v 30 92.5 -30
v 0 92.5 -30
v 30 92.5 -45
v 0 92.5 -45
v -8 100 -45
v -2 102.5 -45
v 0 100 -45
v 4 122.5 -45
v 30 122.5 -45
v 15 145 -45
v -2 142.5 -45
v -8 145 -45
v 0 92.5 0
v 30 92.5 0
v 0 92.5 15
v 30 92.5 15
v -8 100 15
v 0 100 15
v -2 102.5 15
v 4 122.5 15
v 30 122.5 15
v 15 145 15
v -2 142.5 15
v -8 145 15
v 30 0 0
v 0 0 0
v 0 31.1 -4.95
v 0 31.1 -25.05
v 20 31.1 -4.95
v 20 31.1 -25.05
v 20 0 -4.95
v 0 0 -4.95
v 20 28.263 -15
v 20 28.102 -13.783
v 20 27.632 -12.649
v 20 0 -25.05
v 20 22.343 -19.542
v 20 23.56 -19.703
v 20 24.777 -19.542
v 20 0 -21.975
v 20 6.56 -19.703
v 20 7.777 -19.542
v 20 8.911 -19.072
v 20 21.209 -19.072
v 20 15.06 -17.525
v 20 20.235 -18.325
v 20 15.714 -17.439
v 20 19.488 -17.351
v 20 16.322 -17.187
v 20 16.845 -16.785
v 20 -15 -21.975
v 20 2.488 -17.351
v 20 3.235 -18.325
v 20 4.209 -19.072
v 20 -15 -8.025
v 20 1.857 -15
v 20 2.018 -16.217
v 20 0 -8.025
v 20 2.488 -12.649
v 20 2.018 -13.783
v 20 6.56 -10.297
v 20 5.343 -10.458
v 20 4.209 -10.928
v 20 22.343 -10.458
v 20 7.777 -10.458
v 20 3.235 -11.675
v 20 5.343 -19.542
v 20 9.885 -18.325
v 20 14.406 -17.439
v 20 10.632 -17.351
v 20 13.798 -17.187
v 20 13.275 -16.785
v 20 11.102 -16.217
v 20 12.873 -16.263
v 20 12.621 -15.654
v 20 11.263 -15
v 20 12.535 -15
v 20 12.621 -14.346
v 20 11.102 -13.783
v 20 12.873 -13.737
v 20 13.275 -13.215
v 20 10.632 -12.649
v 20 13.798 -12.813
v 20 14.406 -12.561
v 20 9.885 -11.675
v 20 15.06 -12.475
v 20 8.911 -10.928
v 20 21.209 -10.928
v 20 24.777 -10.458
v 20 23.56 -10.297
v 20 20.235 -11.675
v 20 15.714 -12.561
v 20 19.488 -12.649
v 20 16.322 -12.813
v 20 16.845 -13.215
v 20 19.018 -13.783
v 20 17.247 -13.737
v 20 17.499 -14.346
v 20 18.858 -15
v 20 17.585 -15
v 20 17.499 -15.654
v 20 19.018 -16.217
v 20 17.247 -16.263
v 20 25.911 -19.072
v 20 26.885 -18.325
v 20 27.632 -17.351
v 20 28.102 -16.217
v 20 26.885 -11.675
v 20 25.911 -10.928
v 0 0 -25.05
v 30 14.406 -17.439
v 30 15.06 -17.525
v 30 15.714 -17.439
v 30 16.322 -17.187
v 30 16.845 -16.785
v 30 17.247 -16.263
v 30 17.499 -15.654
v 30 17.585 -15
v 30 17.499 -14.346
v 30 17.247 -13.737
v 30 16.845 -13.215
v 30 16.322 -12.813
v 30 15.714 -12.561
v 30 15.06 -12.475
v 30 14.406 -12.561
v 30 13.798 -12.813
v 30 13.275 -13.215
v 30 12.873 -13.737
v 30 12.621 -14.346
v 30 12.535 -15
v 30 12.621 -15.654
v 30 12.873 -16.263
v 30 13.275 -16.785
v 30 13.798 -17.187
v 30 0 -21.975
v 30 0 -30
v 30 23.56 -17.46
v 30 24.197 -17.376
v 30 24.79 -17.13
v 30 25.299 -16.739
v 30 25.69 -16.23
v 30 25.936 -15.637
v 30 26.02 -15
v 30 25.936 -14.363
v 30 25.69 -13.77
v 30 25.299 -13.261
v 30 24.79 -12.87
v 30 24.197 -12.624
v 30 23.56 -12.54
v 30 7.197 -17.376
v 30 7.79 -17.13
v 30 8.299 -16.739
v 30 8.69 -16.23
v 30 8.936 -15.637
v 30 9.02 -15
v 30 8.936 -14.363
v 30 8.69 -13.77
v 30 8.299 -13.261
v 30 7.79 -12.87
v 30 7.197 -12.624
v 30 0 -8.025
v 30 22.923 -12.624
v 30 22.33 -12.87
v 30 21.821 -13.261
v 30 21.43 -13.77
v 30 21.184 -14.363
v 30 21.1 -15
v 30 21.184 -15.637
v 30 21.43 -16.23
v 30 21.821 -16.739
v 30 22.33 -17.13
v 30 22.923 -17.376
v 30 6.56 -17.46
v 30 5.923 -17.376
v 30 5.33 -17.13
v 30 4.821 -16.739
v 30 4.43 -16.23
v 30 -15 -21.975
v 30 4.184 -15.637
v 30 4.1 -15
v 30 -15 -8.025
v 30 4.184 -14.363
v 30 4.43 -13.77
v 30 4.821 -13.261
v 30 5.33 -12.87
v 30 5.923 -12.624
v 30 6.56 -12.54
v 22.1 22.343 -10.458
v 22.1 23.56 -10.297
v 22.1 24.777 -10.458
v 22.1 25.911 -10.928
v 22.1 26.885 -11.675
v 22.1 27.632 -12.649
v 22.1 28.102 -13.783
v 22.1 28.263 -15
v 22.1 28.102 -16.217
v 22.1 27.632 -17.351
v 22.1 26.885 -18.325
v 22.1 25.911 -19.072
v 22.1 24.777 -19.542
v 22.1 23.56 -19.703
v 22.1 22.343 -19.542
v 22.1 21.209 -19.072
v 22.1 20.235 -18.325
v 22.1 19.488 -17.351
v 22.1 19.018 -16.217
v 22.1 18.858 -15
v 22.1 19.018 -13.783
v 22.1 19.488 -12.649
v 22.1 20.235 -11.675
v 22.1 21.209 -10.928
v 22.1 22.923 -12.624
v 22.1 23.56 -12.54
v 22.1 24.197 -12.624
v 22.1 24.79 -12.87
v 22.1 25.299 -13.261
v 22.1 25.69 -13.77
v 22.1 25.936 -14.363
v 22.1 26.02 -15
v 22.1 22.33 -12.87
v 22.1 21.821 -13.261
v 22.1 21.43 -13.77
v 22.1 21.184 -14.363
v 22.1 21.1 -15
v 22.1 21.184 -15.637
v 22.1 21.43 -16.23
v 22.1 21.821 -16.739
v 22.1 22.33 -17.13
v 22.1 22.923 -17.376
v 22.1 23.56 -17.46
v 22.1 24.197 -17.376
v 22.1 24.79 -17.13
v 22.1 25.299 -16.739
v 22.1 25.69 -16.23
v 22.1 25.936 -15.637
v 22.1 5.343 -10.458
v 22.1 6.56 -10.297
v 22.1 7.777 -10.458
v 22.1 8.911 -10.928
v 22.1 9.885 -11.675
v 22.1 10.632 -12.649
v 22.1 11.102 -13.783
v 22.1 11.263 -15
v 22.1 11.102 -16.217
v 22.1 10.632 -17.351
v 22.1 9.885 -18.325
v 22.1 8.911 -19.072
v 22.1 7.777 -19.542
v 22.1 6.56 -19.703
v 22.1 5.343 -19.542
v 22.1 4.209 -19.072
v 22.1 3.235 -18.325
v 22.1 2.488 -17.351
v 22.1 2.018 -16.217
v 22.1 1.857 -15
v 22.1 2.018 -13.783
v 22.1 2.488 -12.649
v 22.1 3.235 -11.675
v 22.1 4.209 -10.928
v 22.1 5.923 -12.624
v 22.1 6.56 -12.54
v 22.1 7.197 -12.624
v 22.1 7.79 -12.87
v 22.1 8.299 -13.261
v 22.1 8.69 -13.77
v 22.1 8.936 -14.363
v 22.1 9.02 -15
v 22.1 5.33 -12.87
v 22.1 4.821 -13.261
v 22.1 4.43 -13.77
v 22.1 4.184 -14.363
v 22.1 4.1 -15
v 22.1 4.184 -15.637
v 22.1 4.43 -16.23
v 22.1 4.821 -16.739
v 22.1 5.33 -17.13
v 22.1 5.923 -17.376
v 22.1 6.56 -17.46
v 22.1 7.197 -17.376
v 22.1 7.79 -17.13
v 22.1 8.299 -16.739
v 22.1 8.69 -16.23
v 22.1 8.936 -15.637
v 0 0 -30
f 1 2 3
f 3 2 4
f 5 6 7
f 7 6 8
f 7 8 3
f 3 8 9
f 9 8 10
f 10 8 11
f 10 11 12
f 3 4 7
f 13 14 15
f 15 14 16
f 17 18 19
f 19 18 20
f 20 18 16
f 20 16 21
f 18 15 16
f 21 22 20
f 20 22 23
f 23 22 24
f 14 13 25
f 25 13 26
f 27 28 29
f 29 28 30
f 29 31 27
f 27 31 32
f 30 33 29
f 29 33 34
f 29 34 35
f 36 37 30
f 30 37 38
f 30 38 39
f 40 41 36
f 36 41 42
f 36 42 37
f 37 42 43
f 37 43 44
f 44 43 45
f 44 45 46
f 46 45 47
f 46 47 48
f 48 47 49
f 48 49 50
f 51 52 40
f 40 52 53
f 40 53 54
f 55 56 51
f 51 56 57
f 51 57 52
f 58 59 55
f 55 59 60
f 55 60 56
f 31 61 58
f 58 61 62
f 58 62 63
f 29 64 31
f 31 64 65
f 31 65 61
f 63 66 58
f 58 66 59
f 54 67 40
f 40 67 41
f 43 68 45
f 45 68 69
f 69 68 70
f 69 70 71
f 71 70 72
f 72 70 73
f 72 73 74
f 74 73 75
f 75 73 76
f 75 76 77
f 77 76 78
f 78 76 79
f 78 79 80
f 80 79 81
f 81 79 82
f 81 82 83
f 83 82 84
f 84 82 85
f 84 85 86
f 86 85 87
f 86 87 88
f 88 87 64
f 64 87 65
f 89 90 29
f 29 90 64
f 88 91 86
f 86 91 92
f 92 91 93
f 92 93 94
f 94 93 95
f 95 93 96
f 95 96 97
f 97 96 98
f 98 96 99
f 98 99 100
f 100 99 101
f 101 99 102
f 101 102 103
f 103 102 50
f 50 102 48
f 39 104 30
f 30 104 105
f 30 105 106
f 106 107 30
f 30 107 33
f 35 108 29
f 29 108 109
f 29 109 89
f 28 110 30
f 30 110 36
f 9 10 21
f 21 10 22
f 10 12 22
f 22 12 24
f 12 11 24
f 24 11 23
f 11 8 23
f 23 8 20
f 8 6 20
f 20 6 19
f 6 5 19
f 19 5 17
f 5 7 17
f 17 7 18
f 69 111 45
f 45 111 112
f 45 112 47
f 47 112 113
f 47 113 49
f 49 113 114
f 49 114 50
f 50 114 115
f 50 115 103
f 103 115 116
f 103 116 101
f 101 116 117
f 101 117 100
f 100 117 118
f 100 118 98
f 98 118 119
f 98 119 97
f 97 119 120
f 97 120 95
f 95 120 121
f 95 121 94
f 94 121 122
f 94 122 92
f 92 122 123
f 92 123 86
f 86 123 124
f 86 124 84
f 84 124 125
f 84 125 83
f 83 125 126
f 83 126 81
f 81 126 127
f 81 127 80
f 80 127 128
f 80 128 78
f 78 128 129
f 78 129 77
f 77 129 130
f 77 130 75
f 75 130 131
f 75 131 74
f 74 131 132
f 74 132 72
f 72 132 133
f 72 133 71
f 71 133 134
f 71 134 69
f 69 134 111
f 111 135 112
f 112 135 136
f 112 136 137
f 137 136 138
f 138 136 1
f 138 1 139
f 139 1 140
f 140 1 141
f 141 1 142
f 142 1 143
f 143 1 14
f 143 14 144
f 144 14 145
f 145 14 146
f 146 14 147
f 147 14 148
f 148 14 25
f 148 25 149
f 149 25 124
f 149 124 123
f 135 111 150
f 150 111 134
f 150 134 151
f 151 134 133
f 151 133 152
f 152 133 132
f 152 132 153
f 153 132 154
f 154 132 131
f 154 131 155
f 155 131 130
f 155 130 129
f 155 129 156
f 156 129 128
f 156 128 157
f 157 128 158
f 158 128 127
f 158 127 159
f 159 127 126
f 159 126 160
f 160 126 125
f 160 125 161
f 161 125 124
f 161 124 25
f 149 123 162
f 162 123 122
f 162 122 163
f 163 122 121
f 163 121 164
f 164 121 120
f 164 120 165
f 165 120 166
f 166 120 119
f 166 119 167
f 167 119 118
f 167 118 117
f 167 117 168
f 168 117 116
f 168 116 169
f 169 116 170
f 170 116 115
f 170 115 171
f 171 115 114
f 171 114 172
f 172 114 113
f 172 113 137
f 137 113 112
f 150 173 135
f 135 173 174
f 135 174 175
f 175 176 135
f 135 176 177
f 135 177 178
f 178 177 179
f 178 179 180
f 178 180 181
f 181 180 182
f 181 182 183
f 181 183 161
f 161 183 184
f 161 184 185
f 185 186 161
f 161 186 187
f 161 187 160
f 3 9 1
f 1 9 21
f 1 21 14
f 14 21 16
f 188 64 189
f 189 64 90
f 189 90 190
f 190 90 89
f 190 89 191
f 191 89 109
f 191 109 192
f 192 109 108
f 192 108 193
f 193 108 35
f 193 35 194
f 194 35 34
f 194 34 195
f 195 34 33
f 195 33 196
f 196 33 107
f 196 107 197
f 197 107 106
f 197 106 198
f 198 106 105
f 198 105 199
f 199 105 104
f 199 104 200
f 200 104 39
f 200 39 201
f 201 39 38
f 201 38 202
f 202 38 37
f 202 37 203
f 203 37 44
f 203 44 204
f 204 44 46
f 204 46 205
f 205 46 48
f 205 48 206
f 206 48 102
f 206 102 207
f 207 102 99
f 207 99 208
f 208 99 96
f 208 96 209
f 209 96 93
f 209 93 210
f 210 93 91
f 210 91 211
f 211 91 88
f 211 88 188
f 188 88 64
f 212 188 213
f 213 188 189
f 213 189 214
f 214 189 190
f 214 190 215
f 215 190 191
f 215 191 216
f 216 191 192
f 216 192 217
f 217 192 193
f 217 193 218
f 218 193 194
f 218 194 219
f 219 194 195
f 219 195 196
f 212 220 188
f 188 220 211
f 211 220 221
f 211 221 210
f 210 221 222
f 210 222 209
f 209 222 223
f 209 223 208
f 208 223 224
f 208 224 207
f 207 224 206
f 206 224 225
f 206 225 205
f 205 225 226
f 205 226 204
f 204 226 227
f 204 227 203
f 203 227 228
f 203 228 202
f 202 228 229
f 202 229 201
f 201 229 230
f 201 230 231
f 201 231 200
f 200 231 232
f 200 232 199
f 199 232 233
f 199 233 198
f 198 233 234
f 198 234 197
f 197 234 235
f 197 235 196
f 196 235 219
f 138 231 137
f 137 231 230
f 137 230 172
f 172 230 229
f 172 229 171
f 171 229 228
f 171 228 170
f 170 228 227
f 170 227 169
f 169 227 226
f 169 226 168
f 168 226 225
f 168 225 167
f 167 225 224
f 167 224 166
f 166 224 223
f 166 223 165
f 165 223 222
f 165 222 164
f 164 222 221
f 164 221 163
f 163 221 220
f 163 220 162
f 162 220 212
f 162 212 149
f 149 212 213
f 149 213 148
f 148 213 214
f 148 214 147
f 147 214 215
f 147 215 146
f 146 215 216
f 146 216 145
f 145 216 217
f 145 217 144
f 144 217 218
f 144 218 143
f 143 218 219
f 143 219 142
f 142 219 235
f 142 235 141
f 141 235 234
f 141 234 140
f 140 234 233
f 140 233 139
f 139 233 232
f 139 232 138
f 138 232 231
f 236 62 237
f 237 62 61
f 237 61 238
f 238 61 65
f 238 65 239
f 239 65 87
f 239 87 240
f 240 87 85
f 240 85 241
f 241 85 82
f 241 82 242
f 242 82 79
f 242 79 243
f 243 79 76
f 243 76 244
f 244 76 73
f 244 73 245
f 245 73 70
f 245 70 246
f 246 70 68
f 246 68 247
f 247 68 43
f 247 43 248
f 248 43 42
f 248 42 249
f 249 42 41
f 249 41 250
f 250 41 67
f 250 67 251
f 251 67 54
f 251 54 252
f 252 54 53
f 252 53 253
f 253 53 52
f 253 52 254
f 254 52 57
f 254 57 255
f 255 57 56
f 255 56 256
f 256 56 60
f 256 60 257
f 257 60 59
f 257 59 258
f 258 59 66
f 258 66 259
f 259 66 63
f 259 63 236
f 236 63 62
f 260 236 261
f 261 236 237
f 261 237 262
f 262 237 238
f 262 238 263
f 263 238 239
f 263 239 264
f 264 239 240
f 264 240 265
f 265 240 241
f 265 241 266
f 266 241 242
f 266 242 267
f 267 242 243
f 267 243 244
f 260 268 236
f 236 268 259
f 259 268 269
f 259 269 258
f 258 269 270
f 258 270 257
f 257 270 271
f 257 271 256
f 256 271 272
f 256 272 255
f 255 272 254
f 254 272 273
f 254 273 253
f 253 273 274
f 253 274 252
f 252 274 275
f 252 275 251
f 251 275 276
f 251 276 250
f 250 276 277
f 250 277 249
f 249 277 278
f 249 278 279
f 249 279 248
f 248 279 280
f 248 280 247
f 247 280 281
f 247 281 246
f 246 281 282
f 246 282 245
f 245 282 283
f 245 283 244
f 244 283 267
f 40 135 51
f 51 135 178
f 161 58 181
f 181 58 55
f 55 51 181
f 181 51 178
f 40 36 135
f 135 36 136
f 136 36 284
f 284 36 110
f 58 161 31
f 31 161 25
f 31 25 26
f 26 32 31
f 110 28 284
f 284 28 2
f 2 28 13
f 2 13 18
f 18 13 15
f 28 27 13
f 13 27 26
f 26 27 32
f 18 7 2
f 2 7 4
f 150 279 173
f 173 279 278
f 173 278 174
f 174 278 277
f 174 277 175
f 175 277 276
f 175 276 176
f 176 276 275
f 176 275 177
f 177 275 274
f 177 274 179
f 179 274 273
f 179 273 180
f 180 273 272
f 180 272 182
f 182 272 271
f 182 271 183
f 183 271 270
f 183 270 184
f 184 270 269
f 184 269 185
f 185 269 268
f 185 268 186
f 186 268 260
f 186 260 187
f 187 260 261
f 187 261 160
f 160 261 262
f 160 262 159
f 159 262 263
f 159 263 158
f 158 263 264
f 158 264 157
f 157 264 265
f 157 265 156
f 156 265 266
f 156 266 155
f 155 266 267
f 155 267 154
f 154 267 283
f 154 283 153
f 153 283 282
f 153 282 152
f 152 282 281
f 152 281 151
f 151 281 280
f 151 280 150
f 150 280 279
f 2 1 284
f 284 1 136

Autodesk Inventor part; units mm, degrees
ref_plane "YZ Plane" through (0, 0, 0) normal (1, 0, 0) x (0, 1, 0)
ref_plane "XZ Plane" through (0, 0, 0) normal (0, 1, 0) x (-1, 0, 0)
sketch "Sketch1" plane through (0, 0, 0) normal (0, 0, 1) x (1, 0, 0)
  line L0 (0, 0) -> (25, 0)
  line L1 (25, 0) -> (25, 40)
  line L2 (25, 40) -> (0, 40)
  line L3 (0, 40) -> (0, 0)
  dimension "d1" = 25
  dimension "d2" = 40
  dimension "d3" = 25
extrude "Extrusion1" add sketch "Sketch1" against normal blind 30
sketch "Sketch2" plane through (25, 0, 0) normal (1, 0, 0) x (0, 0, -1)
  line L0 (0, 0) -> (30, 0) projected
  circle A0 centre (15, 6.56) radius 2.46
extrude "Extrusion2" cut sketch "Sketch2" against normal blind 30
sketch "Sketch3" plane through (0, 0, 0) normal (-1, 0, 0) x (0, 0, 1)
  line L0 (0, 0) -> (-30, 0) projected
  line L1 (-25.05, 0) -> (-4.95, 0)
  line L2 (-4.95, 0) -> (-4.95, 33.12)
  line L3 (-4.95, 33.12) -> (-25.05, 33.12)
  line L4 (-25.05, 33.12) -> (-25.05, 0)
  dimension "d11" = 20.1
extrude "Extrusion3" cut sketch "Sketch3" against normal blind 20
sketch "Sketch4" plane through (0, 0, 0) normal (0, -1, 0) x (1, 0, 0)
  line L0 (20, -4.95) -> (20, -25.05) projected
  line L1 (20, -15) -> (25, -15)
  line L2 (25, 0) -> (25, -30) projected
  line L3 (20, -8.025) -> (25, -8.025)
  line L4 (25, -8.025) -> (25, -21.975)
  line L5 (25, -21.975) -> (20, -21.975)
  line L6 (20, -21.975) -> (20, -8.025)
  line L7 (20, -8.025) -> (25, -21.975) construction
  line L8 (25, -8.025) -> (20, -21.975) construction
  line L9 (25, -12.54) -> (25, -17.46) projected
  point P0 (0, 0)
  point P1 (22.5, -15)
  dimension "d14" = 13.95
extrude "Extrusion4" add sketch "Sketch4" along normal blind 15
sketch "Sketch5" plane through (20, 0, 0) normal (-1, 0, 0) x (0, 0, 1)
  circle A0 centre (-15, 6.56) radius 2.46 projected
  circle A1 centre (-15, 6.56) radius 4.7025
  circle A2 centre (-15, 6.56) radius 2.46 projected
  circle A3 centre (-15, 6.56) radius 2.46
  point P0 (0, 0)
  dimension "d17" = 9.405
extrude "Extrusion5" cut sketch "Sketch5" against normal blind 2.1
sketch "Sketch6" plane through (25, 0, 0) normal (1, 0, 0) x (0, 0, -1)
  circle A0 centre (15, 6.56) radius 4.7025 projected
  line L0 (15, 6.56) -> (15, 23.56)
  circle A1 centre (15, 23.56) radius 2.46
  point P0 (0, 0)
  dimension "d20" = 17
  dimension "d21" = 4.92
extrude "Extrusion6" cut sketch "Sketch6" against normal blind 10 contours A1
sketch "Sketch7" plane through (20, 0, 0) normal (-1, 0, 0) x (0, 0, 1)
  circle A0 centre (-15, 23.56) radius 2.46 projected
  circle A1 centre (-15, 23.56) radius 4.7025
  point P0 (0, 0)
  dimension "d24" = 9.405
extrude "Extrusion7" cut sketch "Sketch7" against normal blind 2.1
sketch "Sketch9" plane through (25, 0, 0) normal (1, 0, 0) x (0, 0, -1)
  circle A0 centre (15, 6.56) radius 2.46 projected
  circle A1 centre (15, 6.56) radius 2.46
  circle A2 centre (15, 23.56) radius 2.46 projected
  circle A3 centre (15, 23.56) radius 2.46
  line L0 (30, 40) -> (30, 0) projected
  line L1 (30, 0) -> (30, 40)
  line L2 (30, 40) -> (0, 40)
  line L3 (0, 40) -> (0, 0)
  line L4 (0, 0) -> (8.025, 0) projected
  line L5 (21.975, 0) -> (21.975, -15)
  line L6 (21.975, -15) -> (8.025, -15)
  line L7 (8.025, -15) -> (8.025, 0)
  line L8 (0, 0) -> (8.025, 0)
  line L9 (21.975, 0) -> (30, 0)
extrude "Extrusion8" add sketch "Sketch9" along normal blind 5
sketch "Sketch10" plane through (0, 40, 0) normal (0, 1, 0) x (1, 0, 0)
  line L0 (0, 30) -> (30, 30) projected
  line L1 (30, 0) -> (0, 0) projected
  line L2 (0, 30) -> (30, 30)
  line L3 (30, 30) -> (30, 0)
  line L4 (30, 0) -> (0, 0)
  line L5 (0, 0) -> (0, 30)
extrude "Extrusion9" add sketch "Sketch10" along normal blind 30
sketch "Sketch12" plane through (30, 0, 0) normal (1, 0, 0) x (0, 0, -1)
  circle A0 centre (15, 6.56) radius 2.46 projected
  line L0 (15, 6.56) -> (15, 15.06)
  circle A1 centre (15, 15.06) radius 2.525
  point P0 (0, 0)
  dimension "d31" = 8.5
  dimension "d33" = 5.05
extrude "Extrusion10" cut sketch "Sketch12" against normal blind 30 contours A1
sketch "Sketch14" plane through (0, 0, 0) normal (0, 0, 1) x (1, 0, 0)
  line L0 (30, 70) -> (0, 70) projected
  line L1 (0, 100) -> (-8, 100)
  line L2 (30, 0) -> (30, 70) projected
  line L3 (30, 118) -> (30, 70)
  line L4 (30, 105) -> (30, 100)
  line L5 (0, 70) -> (30, 70) projected
  line L6 (0, 70) -> (0, 100)
  line L7 (-8, 145) -> (15, 145)
  line L8 (-2, 142.5) -> (-8, 145)
  line L9 (-2, 102.5) -> (-8, 100)
  line L10 (-2, 102.5) -> (4, 122.5)
  line L11 (4, 122.5) -> (-2, 142.5)
  line L12 (15, 145) -> (30, 122.5)
  line L13 (30, 122.5) -> (30, 118)
  point P0 (0, 0)
  dimension "d47" = 30
  dimension "d85" = 45
extrude "Extrusion12" add sketch "Sketch14" against normal blind 30
sketch "Sketch15" plane through (0, 0, -25.05) normal (-1, 0, 0) x (0, 0, 1)
  line L0 (0, 33.12) -> (20.1, 33.12) projected
  line L1 (20.1, 33.12) -> (20.1, 0) projected
  line L2 (0, 33.12) -> (20.1, 33.12)
  line L3 (20.1, 33.12) -> (20.1, 31.1)
  line L4 (20.1, 31.1) -> (0, 31.1)
  line L5 (0, 31.1) -> (0, 33.12)
  point P0 (25.05, 0)
  dimension "d57" = 2.02
extrude "Extrusion13" add sketch "Sketch15" against normal blind 20
sketch "Sketch25" plane through (0, 0, 0) normal (0, 0, 1) x (1, 0, 0)
  line L0 (-8, 100) -> (0, 100) projected
  line L1 (0, 100) -> (-8, 100)
  line L2 (-8, 100) -> (-2, 102.5) projected
  line L3 (-8, 100) -> (-2, 102.5)
  line L4 (-2, 102.5) -> (4, 122.5)
  line L5 (-8, 145) -> (-2, 142.5) projected
  line L6 (4, 122.5) -> (-2, 142.5)
  line L7 (-2, 142.5) -> (-8, 145)
  line L8 (15, 145) -> (-8, 145) projected
  line L9 (-8, 145) -> (15, 145)
  line L10 (15, 145) -> (30, 122.5) projected
  line L11 (15, 145) -> (30, 122.5)
  line L12 (30, 122.5) -> (30, 92.5)
  line L13 (30, 0) -> (30, 122.5) projected
  line L14 (30, 92.5) -> (0, 92.5)
  line L15 (0, 0) -> (0, 100) projected
  line L16 (0, 92.5) -> (0, 100)
  dimension "d88" = 30
extrude "Extrusion14" add sketch "Sketch25" along normal blind 15
ref_plane "Work Plane1" through (0, 0, -15) normal (0, 0, 1) x (1, 0, 0)
mirror "Mirror1" about plane through (0, 0, -15) normal (0, 0, 1) of "Extrusion14"
properties part number "40mm_x_60mm"
